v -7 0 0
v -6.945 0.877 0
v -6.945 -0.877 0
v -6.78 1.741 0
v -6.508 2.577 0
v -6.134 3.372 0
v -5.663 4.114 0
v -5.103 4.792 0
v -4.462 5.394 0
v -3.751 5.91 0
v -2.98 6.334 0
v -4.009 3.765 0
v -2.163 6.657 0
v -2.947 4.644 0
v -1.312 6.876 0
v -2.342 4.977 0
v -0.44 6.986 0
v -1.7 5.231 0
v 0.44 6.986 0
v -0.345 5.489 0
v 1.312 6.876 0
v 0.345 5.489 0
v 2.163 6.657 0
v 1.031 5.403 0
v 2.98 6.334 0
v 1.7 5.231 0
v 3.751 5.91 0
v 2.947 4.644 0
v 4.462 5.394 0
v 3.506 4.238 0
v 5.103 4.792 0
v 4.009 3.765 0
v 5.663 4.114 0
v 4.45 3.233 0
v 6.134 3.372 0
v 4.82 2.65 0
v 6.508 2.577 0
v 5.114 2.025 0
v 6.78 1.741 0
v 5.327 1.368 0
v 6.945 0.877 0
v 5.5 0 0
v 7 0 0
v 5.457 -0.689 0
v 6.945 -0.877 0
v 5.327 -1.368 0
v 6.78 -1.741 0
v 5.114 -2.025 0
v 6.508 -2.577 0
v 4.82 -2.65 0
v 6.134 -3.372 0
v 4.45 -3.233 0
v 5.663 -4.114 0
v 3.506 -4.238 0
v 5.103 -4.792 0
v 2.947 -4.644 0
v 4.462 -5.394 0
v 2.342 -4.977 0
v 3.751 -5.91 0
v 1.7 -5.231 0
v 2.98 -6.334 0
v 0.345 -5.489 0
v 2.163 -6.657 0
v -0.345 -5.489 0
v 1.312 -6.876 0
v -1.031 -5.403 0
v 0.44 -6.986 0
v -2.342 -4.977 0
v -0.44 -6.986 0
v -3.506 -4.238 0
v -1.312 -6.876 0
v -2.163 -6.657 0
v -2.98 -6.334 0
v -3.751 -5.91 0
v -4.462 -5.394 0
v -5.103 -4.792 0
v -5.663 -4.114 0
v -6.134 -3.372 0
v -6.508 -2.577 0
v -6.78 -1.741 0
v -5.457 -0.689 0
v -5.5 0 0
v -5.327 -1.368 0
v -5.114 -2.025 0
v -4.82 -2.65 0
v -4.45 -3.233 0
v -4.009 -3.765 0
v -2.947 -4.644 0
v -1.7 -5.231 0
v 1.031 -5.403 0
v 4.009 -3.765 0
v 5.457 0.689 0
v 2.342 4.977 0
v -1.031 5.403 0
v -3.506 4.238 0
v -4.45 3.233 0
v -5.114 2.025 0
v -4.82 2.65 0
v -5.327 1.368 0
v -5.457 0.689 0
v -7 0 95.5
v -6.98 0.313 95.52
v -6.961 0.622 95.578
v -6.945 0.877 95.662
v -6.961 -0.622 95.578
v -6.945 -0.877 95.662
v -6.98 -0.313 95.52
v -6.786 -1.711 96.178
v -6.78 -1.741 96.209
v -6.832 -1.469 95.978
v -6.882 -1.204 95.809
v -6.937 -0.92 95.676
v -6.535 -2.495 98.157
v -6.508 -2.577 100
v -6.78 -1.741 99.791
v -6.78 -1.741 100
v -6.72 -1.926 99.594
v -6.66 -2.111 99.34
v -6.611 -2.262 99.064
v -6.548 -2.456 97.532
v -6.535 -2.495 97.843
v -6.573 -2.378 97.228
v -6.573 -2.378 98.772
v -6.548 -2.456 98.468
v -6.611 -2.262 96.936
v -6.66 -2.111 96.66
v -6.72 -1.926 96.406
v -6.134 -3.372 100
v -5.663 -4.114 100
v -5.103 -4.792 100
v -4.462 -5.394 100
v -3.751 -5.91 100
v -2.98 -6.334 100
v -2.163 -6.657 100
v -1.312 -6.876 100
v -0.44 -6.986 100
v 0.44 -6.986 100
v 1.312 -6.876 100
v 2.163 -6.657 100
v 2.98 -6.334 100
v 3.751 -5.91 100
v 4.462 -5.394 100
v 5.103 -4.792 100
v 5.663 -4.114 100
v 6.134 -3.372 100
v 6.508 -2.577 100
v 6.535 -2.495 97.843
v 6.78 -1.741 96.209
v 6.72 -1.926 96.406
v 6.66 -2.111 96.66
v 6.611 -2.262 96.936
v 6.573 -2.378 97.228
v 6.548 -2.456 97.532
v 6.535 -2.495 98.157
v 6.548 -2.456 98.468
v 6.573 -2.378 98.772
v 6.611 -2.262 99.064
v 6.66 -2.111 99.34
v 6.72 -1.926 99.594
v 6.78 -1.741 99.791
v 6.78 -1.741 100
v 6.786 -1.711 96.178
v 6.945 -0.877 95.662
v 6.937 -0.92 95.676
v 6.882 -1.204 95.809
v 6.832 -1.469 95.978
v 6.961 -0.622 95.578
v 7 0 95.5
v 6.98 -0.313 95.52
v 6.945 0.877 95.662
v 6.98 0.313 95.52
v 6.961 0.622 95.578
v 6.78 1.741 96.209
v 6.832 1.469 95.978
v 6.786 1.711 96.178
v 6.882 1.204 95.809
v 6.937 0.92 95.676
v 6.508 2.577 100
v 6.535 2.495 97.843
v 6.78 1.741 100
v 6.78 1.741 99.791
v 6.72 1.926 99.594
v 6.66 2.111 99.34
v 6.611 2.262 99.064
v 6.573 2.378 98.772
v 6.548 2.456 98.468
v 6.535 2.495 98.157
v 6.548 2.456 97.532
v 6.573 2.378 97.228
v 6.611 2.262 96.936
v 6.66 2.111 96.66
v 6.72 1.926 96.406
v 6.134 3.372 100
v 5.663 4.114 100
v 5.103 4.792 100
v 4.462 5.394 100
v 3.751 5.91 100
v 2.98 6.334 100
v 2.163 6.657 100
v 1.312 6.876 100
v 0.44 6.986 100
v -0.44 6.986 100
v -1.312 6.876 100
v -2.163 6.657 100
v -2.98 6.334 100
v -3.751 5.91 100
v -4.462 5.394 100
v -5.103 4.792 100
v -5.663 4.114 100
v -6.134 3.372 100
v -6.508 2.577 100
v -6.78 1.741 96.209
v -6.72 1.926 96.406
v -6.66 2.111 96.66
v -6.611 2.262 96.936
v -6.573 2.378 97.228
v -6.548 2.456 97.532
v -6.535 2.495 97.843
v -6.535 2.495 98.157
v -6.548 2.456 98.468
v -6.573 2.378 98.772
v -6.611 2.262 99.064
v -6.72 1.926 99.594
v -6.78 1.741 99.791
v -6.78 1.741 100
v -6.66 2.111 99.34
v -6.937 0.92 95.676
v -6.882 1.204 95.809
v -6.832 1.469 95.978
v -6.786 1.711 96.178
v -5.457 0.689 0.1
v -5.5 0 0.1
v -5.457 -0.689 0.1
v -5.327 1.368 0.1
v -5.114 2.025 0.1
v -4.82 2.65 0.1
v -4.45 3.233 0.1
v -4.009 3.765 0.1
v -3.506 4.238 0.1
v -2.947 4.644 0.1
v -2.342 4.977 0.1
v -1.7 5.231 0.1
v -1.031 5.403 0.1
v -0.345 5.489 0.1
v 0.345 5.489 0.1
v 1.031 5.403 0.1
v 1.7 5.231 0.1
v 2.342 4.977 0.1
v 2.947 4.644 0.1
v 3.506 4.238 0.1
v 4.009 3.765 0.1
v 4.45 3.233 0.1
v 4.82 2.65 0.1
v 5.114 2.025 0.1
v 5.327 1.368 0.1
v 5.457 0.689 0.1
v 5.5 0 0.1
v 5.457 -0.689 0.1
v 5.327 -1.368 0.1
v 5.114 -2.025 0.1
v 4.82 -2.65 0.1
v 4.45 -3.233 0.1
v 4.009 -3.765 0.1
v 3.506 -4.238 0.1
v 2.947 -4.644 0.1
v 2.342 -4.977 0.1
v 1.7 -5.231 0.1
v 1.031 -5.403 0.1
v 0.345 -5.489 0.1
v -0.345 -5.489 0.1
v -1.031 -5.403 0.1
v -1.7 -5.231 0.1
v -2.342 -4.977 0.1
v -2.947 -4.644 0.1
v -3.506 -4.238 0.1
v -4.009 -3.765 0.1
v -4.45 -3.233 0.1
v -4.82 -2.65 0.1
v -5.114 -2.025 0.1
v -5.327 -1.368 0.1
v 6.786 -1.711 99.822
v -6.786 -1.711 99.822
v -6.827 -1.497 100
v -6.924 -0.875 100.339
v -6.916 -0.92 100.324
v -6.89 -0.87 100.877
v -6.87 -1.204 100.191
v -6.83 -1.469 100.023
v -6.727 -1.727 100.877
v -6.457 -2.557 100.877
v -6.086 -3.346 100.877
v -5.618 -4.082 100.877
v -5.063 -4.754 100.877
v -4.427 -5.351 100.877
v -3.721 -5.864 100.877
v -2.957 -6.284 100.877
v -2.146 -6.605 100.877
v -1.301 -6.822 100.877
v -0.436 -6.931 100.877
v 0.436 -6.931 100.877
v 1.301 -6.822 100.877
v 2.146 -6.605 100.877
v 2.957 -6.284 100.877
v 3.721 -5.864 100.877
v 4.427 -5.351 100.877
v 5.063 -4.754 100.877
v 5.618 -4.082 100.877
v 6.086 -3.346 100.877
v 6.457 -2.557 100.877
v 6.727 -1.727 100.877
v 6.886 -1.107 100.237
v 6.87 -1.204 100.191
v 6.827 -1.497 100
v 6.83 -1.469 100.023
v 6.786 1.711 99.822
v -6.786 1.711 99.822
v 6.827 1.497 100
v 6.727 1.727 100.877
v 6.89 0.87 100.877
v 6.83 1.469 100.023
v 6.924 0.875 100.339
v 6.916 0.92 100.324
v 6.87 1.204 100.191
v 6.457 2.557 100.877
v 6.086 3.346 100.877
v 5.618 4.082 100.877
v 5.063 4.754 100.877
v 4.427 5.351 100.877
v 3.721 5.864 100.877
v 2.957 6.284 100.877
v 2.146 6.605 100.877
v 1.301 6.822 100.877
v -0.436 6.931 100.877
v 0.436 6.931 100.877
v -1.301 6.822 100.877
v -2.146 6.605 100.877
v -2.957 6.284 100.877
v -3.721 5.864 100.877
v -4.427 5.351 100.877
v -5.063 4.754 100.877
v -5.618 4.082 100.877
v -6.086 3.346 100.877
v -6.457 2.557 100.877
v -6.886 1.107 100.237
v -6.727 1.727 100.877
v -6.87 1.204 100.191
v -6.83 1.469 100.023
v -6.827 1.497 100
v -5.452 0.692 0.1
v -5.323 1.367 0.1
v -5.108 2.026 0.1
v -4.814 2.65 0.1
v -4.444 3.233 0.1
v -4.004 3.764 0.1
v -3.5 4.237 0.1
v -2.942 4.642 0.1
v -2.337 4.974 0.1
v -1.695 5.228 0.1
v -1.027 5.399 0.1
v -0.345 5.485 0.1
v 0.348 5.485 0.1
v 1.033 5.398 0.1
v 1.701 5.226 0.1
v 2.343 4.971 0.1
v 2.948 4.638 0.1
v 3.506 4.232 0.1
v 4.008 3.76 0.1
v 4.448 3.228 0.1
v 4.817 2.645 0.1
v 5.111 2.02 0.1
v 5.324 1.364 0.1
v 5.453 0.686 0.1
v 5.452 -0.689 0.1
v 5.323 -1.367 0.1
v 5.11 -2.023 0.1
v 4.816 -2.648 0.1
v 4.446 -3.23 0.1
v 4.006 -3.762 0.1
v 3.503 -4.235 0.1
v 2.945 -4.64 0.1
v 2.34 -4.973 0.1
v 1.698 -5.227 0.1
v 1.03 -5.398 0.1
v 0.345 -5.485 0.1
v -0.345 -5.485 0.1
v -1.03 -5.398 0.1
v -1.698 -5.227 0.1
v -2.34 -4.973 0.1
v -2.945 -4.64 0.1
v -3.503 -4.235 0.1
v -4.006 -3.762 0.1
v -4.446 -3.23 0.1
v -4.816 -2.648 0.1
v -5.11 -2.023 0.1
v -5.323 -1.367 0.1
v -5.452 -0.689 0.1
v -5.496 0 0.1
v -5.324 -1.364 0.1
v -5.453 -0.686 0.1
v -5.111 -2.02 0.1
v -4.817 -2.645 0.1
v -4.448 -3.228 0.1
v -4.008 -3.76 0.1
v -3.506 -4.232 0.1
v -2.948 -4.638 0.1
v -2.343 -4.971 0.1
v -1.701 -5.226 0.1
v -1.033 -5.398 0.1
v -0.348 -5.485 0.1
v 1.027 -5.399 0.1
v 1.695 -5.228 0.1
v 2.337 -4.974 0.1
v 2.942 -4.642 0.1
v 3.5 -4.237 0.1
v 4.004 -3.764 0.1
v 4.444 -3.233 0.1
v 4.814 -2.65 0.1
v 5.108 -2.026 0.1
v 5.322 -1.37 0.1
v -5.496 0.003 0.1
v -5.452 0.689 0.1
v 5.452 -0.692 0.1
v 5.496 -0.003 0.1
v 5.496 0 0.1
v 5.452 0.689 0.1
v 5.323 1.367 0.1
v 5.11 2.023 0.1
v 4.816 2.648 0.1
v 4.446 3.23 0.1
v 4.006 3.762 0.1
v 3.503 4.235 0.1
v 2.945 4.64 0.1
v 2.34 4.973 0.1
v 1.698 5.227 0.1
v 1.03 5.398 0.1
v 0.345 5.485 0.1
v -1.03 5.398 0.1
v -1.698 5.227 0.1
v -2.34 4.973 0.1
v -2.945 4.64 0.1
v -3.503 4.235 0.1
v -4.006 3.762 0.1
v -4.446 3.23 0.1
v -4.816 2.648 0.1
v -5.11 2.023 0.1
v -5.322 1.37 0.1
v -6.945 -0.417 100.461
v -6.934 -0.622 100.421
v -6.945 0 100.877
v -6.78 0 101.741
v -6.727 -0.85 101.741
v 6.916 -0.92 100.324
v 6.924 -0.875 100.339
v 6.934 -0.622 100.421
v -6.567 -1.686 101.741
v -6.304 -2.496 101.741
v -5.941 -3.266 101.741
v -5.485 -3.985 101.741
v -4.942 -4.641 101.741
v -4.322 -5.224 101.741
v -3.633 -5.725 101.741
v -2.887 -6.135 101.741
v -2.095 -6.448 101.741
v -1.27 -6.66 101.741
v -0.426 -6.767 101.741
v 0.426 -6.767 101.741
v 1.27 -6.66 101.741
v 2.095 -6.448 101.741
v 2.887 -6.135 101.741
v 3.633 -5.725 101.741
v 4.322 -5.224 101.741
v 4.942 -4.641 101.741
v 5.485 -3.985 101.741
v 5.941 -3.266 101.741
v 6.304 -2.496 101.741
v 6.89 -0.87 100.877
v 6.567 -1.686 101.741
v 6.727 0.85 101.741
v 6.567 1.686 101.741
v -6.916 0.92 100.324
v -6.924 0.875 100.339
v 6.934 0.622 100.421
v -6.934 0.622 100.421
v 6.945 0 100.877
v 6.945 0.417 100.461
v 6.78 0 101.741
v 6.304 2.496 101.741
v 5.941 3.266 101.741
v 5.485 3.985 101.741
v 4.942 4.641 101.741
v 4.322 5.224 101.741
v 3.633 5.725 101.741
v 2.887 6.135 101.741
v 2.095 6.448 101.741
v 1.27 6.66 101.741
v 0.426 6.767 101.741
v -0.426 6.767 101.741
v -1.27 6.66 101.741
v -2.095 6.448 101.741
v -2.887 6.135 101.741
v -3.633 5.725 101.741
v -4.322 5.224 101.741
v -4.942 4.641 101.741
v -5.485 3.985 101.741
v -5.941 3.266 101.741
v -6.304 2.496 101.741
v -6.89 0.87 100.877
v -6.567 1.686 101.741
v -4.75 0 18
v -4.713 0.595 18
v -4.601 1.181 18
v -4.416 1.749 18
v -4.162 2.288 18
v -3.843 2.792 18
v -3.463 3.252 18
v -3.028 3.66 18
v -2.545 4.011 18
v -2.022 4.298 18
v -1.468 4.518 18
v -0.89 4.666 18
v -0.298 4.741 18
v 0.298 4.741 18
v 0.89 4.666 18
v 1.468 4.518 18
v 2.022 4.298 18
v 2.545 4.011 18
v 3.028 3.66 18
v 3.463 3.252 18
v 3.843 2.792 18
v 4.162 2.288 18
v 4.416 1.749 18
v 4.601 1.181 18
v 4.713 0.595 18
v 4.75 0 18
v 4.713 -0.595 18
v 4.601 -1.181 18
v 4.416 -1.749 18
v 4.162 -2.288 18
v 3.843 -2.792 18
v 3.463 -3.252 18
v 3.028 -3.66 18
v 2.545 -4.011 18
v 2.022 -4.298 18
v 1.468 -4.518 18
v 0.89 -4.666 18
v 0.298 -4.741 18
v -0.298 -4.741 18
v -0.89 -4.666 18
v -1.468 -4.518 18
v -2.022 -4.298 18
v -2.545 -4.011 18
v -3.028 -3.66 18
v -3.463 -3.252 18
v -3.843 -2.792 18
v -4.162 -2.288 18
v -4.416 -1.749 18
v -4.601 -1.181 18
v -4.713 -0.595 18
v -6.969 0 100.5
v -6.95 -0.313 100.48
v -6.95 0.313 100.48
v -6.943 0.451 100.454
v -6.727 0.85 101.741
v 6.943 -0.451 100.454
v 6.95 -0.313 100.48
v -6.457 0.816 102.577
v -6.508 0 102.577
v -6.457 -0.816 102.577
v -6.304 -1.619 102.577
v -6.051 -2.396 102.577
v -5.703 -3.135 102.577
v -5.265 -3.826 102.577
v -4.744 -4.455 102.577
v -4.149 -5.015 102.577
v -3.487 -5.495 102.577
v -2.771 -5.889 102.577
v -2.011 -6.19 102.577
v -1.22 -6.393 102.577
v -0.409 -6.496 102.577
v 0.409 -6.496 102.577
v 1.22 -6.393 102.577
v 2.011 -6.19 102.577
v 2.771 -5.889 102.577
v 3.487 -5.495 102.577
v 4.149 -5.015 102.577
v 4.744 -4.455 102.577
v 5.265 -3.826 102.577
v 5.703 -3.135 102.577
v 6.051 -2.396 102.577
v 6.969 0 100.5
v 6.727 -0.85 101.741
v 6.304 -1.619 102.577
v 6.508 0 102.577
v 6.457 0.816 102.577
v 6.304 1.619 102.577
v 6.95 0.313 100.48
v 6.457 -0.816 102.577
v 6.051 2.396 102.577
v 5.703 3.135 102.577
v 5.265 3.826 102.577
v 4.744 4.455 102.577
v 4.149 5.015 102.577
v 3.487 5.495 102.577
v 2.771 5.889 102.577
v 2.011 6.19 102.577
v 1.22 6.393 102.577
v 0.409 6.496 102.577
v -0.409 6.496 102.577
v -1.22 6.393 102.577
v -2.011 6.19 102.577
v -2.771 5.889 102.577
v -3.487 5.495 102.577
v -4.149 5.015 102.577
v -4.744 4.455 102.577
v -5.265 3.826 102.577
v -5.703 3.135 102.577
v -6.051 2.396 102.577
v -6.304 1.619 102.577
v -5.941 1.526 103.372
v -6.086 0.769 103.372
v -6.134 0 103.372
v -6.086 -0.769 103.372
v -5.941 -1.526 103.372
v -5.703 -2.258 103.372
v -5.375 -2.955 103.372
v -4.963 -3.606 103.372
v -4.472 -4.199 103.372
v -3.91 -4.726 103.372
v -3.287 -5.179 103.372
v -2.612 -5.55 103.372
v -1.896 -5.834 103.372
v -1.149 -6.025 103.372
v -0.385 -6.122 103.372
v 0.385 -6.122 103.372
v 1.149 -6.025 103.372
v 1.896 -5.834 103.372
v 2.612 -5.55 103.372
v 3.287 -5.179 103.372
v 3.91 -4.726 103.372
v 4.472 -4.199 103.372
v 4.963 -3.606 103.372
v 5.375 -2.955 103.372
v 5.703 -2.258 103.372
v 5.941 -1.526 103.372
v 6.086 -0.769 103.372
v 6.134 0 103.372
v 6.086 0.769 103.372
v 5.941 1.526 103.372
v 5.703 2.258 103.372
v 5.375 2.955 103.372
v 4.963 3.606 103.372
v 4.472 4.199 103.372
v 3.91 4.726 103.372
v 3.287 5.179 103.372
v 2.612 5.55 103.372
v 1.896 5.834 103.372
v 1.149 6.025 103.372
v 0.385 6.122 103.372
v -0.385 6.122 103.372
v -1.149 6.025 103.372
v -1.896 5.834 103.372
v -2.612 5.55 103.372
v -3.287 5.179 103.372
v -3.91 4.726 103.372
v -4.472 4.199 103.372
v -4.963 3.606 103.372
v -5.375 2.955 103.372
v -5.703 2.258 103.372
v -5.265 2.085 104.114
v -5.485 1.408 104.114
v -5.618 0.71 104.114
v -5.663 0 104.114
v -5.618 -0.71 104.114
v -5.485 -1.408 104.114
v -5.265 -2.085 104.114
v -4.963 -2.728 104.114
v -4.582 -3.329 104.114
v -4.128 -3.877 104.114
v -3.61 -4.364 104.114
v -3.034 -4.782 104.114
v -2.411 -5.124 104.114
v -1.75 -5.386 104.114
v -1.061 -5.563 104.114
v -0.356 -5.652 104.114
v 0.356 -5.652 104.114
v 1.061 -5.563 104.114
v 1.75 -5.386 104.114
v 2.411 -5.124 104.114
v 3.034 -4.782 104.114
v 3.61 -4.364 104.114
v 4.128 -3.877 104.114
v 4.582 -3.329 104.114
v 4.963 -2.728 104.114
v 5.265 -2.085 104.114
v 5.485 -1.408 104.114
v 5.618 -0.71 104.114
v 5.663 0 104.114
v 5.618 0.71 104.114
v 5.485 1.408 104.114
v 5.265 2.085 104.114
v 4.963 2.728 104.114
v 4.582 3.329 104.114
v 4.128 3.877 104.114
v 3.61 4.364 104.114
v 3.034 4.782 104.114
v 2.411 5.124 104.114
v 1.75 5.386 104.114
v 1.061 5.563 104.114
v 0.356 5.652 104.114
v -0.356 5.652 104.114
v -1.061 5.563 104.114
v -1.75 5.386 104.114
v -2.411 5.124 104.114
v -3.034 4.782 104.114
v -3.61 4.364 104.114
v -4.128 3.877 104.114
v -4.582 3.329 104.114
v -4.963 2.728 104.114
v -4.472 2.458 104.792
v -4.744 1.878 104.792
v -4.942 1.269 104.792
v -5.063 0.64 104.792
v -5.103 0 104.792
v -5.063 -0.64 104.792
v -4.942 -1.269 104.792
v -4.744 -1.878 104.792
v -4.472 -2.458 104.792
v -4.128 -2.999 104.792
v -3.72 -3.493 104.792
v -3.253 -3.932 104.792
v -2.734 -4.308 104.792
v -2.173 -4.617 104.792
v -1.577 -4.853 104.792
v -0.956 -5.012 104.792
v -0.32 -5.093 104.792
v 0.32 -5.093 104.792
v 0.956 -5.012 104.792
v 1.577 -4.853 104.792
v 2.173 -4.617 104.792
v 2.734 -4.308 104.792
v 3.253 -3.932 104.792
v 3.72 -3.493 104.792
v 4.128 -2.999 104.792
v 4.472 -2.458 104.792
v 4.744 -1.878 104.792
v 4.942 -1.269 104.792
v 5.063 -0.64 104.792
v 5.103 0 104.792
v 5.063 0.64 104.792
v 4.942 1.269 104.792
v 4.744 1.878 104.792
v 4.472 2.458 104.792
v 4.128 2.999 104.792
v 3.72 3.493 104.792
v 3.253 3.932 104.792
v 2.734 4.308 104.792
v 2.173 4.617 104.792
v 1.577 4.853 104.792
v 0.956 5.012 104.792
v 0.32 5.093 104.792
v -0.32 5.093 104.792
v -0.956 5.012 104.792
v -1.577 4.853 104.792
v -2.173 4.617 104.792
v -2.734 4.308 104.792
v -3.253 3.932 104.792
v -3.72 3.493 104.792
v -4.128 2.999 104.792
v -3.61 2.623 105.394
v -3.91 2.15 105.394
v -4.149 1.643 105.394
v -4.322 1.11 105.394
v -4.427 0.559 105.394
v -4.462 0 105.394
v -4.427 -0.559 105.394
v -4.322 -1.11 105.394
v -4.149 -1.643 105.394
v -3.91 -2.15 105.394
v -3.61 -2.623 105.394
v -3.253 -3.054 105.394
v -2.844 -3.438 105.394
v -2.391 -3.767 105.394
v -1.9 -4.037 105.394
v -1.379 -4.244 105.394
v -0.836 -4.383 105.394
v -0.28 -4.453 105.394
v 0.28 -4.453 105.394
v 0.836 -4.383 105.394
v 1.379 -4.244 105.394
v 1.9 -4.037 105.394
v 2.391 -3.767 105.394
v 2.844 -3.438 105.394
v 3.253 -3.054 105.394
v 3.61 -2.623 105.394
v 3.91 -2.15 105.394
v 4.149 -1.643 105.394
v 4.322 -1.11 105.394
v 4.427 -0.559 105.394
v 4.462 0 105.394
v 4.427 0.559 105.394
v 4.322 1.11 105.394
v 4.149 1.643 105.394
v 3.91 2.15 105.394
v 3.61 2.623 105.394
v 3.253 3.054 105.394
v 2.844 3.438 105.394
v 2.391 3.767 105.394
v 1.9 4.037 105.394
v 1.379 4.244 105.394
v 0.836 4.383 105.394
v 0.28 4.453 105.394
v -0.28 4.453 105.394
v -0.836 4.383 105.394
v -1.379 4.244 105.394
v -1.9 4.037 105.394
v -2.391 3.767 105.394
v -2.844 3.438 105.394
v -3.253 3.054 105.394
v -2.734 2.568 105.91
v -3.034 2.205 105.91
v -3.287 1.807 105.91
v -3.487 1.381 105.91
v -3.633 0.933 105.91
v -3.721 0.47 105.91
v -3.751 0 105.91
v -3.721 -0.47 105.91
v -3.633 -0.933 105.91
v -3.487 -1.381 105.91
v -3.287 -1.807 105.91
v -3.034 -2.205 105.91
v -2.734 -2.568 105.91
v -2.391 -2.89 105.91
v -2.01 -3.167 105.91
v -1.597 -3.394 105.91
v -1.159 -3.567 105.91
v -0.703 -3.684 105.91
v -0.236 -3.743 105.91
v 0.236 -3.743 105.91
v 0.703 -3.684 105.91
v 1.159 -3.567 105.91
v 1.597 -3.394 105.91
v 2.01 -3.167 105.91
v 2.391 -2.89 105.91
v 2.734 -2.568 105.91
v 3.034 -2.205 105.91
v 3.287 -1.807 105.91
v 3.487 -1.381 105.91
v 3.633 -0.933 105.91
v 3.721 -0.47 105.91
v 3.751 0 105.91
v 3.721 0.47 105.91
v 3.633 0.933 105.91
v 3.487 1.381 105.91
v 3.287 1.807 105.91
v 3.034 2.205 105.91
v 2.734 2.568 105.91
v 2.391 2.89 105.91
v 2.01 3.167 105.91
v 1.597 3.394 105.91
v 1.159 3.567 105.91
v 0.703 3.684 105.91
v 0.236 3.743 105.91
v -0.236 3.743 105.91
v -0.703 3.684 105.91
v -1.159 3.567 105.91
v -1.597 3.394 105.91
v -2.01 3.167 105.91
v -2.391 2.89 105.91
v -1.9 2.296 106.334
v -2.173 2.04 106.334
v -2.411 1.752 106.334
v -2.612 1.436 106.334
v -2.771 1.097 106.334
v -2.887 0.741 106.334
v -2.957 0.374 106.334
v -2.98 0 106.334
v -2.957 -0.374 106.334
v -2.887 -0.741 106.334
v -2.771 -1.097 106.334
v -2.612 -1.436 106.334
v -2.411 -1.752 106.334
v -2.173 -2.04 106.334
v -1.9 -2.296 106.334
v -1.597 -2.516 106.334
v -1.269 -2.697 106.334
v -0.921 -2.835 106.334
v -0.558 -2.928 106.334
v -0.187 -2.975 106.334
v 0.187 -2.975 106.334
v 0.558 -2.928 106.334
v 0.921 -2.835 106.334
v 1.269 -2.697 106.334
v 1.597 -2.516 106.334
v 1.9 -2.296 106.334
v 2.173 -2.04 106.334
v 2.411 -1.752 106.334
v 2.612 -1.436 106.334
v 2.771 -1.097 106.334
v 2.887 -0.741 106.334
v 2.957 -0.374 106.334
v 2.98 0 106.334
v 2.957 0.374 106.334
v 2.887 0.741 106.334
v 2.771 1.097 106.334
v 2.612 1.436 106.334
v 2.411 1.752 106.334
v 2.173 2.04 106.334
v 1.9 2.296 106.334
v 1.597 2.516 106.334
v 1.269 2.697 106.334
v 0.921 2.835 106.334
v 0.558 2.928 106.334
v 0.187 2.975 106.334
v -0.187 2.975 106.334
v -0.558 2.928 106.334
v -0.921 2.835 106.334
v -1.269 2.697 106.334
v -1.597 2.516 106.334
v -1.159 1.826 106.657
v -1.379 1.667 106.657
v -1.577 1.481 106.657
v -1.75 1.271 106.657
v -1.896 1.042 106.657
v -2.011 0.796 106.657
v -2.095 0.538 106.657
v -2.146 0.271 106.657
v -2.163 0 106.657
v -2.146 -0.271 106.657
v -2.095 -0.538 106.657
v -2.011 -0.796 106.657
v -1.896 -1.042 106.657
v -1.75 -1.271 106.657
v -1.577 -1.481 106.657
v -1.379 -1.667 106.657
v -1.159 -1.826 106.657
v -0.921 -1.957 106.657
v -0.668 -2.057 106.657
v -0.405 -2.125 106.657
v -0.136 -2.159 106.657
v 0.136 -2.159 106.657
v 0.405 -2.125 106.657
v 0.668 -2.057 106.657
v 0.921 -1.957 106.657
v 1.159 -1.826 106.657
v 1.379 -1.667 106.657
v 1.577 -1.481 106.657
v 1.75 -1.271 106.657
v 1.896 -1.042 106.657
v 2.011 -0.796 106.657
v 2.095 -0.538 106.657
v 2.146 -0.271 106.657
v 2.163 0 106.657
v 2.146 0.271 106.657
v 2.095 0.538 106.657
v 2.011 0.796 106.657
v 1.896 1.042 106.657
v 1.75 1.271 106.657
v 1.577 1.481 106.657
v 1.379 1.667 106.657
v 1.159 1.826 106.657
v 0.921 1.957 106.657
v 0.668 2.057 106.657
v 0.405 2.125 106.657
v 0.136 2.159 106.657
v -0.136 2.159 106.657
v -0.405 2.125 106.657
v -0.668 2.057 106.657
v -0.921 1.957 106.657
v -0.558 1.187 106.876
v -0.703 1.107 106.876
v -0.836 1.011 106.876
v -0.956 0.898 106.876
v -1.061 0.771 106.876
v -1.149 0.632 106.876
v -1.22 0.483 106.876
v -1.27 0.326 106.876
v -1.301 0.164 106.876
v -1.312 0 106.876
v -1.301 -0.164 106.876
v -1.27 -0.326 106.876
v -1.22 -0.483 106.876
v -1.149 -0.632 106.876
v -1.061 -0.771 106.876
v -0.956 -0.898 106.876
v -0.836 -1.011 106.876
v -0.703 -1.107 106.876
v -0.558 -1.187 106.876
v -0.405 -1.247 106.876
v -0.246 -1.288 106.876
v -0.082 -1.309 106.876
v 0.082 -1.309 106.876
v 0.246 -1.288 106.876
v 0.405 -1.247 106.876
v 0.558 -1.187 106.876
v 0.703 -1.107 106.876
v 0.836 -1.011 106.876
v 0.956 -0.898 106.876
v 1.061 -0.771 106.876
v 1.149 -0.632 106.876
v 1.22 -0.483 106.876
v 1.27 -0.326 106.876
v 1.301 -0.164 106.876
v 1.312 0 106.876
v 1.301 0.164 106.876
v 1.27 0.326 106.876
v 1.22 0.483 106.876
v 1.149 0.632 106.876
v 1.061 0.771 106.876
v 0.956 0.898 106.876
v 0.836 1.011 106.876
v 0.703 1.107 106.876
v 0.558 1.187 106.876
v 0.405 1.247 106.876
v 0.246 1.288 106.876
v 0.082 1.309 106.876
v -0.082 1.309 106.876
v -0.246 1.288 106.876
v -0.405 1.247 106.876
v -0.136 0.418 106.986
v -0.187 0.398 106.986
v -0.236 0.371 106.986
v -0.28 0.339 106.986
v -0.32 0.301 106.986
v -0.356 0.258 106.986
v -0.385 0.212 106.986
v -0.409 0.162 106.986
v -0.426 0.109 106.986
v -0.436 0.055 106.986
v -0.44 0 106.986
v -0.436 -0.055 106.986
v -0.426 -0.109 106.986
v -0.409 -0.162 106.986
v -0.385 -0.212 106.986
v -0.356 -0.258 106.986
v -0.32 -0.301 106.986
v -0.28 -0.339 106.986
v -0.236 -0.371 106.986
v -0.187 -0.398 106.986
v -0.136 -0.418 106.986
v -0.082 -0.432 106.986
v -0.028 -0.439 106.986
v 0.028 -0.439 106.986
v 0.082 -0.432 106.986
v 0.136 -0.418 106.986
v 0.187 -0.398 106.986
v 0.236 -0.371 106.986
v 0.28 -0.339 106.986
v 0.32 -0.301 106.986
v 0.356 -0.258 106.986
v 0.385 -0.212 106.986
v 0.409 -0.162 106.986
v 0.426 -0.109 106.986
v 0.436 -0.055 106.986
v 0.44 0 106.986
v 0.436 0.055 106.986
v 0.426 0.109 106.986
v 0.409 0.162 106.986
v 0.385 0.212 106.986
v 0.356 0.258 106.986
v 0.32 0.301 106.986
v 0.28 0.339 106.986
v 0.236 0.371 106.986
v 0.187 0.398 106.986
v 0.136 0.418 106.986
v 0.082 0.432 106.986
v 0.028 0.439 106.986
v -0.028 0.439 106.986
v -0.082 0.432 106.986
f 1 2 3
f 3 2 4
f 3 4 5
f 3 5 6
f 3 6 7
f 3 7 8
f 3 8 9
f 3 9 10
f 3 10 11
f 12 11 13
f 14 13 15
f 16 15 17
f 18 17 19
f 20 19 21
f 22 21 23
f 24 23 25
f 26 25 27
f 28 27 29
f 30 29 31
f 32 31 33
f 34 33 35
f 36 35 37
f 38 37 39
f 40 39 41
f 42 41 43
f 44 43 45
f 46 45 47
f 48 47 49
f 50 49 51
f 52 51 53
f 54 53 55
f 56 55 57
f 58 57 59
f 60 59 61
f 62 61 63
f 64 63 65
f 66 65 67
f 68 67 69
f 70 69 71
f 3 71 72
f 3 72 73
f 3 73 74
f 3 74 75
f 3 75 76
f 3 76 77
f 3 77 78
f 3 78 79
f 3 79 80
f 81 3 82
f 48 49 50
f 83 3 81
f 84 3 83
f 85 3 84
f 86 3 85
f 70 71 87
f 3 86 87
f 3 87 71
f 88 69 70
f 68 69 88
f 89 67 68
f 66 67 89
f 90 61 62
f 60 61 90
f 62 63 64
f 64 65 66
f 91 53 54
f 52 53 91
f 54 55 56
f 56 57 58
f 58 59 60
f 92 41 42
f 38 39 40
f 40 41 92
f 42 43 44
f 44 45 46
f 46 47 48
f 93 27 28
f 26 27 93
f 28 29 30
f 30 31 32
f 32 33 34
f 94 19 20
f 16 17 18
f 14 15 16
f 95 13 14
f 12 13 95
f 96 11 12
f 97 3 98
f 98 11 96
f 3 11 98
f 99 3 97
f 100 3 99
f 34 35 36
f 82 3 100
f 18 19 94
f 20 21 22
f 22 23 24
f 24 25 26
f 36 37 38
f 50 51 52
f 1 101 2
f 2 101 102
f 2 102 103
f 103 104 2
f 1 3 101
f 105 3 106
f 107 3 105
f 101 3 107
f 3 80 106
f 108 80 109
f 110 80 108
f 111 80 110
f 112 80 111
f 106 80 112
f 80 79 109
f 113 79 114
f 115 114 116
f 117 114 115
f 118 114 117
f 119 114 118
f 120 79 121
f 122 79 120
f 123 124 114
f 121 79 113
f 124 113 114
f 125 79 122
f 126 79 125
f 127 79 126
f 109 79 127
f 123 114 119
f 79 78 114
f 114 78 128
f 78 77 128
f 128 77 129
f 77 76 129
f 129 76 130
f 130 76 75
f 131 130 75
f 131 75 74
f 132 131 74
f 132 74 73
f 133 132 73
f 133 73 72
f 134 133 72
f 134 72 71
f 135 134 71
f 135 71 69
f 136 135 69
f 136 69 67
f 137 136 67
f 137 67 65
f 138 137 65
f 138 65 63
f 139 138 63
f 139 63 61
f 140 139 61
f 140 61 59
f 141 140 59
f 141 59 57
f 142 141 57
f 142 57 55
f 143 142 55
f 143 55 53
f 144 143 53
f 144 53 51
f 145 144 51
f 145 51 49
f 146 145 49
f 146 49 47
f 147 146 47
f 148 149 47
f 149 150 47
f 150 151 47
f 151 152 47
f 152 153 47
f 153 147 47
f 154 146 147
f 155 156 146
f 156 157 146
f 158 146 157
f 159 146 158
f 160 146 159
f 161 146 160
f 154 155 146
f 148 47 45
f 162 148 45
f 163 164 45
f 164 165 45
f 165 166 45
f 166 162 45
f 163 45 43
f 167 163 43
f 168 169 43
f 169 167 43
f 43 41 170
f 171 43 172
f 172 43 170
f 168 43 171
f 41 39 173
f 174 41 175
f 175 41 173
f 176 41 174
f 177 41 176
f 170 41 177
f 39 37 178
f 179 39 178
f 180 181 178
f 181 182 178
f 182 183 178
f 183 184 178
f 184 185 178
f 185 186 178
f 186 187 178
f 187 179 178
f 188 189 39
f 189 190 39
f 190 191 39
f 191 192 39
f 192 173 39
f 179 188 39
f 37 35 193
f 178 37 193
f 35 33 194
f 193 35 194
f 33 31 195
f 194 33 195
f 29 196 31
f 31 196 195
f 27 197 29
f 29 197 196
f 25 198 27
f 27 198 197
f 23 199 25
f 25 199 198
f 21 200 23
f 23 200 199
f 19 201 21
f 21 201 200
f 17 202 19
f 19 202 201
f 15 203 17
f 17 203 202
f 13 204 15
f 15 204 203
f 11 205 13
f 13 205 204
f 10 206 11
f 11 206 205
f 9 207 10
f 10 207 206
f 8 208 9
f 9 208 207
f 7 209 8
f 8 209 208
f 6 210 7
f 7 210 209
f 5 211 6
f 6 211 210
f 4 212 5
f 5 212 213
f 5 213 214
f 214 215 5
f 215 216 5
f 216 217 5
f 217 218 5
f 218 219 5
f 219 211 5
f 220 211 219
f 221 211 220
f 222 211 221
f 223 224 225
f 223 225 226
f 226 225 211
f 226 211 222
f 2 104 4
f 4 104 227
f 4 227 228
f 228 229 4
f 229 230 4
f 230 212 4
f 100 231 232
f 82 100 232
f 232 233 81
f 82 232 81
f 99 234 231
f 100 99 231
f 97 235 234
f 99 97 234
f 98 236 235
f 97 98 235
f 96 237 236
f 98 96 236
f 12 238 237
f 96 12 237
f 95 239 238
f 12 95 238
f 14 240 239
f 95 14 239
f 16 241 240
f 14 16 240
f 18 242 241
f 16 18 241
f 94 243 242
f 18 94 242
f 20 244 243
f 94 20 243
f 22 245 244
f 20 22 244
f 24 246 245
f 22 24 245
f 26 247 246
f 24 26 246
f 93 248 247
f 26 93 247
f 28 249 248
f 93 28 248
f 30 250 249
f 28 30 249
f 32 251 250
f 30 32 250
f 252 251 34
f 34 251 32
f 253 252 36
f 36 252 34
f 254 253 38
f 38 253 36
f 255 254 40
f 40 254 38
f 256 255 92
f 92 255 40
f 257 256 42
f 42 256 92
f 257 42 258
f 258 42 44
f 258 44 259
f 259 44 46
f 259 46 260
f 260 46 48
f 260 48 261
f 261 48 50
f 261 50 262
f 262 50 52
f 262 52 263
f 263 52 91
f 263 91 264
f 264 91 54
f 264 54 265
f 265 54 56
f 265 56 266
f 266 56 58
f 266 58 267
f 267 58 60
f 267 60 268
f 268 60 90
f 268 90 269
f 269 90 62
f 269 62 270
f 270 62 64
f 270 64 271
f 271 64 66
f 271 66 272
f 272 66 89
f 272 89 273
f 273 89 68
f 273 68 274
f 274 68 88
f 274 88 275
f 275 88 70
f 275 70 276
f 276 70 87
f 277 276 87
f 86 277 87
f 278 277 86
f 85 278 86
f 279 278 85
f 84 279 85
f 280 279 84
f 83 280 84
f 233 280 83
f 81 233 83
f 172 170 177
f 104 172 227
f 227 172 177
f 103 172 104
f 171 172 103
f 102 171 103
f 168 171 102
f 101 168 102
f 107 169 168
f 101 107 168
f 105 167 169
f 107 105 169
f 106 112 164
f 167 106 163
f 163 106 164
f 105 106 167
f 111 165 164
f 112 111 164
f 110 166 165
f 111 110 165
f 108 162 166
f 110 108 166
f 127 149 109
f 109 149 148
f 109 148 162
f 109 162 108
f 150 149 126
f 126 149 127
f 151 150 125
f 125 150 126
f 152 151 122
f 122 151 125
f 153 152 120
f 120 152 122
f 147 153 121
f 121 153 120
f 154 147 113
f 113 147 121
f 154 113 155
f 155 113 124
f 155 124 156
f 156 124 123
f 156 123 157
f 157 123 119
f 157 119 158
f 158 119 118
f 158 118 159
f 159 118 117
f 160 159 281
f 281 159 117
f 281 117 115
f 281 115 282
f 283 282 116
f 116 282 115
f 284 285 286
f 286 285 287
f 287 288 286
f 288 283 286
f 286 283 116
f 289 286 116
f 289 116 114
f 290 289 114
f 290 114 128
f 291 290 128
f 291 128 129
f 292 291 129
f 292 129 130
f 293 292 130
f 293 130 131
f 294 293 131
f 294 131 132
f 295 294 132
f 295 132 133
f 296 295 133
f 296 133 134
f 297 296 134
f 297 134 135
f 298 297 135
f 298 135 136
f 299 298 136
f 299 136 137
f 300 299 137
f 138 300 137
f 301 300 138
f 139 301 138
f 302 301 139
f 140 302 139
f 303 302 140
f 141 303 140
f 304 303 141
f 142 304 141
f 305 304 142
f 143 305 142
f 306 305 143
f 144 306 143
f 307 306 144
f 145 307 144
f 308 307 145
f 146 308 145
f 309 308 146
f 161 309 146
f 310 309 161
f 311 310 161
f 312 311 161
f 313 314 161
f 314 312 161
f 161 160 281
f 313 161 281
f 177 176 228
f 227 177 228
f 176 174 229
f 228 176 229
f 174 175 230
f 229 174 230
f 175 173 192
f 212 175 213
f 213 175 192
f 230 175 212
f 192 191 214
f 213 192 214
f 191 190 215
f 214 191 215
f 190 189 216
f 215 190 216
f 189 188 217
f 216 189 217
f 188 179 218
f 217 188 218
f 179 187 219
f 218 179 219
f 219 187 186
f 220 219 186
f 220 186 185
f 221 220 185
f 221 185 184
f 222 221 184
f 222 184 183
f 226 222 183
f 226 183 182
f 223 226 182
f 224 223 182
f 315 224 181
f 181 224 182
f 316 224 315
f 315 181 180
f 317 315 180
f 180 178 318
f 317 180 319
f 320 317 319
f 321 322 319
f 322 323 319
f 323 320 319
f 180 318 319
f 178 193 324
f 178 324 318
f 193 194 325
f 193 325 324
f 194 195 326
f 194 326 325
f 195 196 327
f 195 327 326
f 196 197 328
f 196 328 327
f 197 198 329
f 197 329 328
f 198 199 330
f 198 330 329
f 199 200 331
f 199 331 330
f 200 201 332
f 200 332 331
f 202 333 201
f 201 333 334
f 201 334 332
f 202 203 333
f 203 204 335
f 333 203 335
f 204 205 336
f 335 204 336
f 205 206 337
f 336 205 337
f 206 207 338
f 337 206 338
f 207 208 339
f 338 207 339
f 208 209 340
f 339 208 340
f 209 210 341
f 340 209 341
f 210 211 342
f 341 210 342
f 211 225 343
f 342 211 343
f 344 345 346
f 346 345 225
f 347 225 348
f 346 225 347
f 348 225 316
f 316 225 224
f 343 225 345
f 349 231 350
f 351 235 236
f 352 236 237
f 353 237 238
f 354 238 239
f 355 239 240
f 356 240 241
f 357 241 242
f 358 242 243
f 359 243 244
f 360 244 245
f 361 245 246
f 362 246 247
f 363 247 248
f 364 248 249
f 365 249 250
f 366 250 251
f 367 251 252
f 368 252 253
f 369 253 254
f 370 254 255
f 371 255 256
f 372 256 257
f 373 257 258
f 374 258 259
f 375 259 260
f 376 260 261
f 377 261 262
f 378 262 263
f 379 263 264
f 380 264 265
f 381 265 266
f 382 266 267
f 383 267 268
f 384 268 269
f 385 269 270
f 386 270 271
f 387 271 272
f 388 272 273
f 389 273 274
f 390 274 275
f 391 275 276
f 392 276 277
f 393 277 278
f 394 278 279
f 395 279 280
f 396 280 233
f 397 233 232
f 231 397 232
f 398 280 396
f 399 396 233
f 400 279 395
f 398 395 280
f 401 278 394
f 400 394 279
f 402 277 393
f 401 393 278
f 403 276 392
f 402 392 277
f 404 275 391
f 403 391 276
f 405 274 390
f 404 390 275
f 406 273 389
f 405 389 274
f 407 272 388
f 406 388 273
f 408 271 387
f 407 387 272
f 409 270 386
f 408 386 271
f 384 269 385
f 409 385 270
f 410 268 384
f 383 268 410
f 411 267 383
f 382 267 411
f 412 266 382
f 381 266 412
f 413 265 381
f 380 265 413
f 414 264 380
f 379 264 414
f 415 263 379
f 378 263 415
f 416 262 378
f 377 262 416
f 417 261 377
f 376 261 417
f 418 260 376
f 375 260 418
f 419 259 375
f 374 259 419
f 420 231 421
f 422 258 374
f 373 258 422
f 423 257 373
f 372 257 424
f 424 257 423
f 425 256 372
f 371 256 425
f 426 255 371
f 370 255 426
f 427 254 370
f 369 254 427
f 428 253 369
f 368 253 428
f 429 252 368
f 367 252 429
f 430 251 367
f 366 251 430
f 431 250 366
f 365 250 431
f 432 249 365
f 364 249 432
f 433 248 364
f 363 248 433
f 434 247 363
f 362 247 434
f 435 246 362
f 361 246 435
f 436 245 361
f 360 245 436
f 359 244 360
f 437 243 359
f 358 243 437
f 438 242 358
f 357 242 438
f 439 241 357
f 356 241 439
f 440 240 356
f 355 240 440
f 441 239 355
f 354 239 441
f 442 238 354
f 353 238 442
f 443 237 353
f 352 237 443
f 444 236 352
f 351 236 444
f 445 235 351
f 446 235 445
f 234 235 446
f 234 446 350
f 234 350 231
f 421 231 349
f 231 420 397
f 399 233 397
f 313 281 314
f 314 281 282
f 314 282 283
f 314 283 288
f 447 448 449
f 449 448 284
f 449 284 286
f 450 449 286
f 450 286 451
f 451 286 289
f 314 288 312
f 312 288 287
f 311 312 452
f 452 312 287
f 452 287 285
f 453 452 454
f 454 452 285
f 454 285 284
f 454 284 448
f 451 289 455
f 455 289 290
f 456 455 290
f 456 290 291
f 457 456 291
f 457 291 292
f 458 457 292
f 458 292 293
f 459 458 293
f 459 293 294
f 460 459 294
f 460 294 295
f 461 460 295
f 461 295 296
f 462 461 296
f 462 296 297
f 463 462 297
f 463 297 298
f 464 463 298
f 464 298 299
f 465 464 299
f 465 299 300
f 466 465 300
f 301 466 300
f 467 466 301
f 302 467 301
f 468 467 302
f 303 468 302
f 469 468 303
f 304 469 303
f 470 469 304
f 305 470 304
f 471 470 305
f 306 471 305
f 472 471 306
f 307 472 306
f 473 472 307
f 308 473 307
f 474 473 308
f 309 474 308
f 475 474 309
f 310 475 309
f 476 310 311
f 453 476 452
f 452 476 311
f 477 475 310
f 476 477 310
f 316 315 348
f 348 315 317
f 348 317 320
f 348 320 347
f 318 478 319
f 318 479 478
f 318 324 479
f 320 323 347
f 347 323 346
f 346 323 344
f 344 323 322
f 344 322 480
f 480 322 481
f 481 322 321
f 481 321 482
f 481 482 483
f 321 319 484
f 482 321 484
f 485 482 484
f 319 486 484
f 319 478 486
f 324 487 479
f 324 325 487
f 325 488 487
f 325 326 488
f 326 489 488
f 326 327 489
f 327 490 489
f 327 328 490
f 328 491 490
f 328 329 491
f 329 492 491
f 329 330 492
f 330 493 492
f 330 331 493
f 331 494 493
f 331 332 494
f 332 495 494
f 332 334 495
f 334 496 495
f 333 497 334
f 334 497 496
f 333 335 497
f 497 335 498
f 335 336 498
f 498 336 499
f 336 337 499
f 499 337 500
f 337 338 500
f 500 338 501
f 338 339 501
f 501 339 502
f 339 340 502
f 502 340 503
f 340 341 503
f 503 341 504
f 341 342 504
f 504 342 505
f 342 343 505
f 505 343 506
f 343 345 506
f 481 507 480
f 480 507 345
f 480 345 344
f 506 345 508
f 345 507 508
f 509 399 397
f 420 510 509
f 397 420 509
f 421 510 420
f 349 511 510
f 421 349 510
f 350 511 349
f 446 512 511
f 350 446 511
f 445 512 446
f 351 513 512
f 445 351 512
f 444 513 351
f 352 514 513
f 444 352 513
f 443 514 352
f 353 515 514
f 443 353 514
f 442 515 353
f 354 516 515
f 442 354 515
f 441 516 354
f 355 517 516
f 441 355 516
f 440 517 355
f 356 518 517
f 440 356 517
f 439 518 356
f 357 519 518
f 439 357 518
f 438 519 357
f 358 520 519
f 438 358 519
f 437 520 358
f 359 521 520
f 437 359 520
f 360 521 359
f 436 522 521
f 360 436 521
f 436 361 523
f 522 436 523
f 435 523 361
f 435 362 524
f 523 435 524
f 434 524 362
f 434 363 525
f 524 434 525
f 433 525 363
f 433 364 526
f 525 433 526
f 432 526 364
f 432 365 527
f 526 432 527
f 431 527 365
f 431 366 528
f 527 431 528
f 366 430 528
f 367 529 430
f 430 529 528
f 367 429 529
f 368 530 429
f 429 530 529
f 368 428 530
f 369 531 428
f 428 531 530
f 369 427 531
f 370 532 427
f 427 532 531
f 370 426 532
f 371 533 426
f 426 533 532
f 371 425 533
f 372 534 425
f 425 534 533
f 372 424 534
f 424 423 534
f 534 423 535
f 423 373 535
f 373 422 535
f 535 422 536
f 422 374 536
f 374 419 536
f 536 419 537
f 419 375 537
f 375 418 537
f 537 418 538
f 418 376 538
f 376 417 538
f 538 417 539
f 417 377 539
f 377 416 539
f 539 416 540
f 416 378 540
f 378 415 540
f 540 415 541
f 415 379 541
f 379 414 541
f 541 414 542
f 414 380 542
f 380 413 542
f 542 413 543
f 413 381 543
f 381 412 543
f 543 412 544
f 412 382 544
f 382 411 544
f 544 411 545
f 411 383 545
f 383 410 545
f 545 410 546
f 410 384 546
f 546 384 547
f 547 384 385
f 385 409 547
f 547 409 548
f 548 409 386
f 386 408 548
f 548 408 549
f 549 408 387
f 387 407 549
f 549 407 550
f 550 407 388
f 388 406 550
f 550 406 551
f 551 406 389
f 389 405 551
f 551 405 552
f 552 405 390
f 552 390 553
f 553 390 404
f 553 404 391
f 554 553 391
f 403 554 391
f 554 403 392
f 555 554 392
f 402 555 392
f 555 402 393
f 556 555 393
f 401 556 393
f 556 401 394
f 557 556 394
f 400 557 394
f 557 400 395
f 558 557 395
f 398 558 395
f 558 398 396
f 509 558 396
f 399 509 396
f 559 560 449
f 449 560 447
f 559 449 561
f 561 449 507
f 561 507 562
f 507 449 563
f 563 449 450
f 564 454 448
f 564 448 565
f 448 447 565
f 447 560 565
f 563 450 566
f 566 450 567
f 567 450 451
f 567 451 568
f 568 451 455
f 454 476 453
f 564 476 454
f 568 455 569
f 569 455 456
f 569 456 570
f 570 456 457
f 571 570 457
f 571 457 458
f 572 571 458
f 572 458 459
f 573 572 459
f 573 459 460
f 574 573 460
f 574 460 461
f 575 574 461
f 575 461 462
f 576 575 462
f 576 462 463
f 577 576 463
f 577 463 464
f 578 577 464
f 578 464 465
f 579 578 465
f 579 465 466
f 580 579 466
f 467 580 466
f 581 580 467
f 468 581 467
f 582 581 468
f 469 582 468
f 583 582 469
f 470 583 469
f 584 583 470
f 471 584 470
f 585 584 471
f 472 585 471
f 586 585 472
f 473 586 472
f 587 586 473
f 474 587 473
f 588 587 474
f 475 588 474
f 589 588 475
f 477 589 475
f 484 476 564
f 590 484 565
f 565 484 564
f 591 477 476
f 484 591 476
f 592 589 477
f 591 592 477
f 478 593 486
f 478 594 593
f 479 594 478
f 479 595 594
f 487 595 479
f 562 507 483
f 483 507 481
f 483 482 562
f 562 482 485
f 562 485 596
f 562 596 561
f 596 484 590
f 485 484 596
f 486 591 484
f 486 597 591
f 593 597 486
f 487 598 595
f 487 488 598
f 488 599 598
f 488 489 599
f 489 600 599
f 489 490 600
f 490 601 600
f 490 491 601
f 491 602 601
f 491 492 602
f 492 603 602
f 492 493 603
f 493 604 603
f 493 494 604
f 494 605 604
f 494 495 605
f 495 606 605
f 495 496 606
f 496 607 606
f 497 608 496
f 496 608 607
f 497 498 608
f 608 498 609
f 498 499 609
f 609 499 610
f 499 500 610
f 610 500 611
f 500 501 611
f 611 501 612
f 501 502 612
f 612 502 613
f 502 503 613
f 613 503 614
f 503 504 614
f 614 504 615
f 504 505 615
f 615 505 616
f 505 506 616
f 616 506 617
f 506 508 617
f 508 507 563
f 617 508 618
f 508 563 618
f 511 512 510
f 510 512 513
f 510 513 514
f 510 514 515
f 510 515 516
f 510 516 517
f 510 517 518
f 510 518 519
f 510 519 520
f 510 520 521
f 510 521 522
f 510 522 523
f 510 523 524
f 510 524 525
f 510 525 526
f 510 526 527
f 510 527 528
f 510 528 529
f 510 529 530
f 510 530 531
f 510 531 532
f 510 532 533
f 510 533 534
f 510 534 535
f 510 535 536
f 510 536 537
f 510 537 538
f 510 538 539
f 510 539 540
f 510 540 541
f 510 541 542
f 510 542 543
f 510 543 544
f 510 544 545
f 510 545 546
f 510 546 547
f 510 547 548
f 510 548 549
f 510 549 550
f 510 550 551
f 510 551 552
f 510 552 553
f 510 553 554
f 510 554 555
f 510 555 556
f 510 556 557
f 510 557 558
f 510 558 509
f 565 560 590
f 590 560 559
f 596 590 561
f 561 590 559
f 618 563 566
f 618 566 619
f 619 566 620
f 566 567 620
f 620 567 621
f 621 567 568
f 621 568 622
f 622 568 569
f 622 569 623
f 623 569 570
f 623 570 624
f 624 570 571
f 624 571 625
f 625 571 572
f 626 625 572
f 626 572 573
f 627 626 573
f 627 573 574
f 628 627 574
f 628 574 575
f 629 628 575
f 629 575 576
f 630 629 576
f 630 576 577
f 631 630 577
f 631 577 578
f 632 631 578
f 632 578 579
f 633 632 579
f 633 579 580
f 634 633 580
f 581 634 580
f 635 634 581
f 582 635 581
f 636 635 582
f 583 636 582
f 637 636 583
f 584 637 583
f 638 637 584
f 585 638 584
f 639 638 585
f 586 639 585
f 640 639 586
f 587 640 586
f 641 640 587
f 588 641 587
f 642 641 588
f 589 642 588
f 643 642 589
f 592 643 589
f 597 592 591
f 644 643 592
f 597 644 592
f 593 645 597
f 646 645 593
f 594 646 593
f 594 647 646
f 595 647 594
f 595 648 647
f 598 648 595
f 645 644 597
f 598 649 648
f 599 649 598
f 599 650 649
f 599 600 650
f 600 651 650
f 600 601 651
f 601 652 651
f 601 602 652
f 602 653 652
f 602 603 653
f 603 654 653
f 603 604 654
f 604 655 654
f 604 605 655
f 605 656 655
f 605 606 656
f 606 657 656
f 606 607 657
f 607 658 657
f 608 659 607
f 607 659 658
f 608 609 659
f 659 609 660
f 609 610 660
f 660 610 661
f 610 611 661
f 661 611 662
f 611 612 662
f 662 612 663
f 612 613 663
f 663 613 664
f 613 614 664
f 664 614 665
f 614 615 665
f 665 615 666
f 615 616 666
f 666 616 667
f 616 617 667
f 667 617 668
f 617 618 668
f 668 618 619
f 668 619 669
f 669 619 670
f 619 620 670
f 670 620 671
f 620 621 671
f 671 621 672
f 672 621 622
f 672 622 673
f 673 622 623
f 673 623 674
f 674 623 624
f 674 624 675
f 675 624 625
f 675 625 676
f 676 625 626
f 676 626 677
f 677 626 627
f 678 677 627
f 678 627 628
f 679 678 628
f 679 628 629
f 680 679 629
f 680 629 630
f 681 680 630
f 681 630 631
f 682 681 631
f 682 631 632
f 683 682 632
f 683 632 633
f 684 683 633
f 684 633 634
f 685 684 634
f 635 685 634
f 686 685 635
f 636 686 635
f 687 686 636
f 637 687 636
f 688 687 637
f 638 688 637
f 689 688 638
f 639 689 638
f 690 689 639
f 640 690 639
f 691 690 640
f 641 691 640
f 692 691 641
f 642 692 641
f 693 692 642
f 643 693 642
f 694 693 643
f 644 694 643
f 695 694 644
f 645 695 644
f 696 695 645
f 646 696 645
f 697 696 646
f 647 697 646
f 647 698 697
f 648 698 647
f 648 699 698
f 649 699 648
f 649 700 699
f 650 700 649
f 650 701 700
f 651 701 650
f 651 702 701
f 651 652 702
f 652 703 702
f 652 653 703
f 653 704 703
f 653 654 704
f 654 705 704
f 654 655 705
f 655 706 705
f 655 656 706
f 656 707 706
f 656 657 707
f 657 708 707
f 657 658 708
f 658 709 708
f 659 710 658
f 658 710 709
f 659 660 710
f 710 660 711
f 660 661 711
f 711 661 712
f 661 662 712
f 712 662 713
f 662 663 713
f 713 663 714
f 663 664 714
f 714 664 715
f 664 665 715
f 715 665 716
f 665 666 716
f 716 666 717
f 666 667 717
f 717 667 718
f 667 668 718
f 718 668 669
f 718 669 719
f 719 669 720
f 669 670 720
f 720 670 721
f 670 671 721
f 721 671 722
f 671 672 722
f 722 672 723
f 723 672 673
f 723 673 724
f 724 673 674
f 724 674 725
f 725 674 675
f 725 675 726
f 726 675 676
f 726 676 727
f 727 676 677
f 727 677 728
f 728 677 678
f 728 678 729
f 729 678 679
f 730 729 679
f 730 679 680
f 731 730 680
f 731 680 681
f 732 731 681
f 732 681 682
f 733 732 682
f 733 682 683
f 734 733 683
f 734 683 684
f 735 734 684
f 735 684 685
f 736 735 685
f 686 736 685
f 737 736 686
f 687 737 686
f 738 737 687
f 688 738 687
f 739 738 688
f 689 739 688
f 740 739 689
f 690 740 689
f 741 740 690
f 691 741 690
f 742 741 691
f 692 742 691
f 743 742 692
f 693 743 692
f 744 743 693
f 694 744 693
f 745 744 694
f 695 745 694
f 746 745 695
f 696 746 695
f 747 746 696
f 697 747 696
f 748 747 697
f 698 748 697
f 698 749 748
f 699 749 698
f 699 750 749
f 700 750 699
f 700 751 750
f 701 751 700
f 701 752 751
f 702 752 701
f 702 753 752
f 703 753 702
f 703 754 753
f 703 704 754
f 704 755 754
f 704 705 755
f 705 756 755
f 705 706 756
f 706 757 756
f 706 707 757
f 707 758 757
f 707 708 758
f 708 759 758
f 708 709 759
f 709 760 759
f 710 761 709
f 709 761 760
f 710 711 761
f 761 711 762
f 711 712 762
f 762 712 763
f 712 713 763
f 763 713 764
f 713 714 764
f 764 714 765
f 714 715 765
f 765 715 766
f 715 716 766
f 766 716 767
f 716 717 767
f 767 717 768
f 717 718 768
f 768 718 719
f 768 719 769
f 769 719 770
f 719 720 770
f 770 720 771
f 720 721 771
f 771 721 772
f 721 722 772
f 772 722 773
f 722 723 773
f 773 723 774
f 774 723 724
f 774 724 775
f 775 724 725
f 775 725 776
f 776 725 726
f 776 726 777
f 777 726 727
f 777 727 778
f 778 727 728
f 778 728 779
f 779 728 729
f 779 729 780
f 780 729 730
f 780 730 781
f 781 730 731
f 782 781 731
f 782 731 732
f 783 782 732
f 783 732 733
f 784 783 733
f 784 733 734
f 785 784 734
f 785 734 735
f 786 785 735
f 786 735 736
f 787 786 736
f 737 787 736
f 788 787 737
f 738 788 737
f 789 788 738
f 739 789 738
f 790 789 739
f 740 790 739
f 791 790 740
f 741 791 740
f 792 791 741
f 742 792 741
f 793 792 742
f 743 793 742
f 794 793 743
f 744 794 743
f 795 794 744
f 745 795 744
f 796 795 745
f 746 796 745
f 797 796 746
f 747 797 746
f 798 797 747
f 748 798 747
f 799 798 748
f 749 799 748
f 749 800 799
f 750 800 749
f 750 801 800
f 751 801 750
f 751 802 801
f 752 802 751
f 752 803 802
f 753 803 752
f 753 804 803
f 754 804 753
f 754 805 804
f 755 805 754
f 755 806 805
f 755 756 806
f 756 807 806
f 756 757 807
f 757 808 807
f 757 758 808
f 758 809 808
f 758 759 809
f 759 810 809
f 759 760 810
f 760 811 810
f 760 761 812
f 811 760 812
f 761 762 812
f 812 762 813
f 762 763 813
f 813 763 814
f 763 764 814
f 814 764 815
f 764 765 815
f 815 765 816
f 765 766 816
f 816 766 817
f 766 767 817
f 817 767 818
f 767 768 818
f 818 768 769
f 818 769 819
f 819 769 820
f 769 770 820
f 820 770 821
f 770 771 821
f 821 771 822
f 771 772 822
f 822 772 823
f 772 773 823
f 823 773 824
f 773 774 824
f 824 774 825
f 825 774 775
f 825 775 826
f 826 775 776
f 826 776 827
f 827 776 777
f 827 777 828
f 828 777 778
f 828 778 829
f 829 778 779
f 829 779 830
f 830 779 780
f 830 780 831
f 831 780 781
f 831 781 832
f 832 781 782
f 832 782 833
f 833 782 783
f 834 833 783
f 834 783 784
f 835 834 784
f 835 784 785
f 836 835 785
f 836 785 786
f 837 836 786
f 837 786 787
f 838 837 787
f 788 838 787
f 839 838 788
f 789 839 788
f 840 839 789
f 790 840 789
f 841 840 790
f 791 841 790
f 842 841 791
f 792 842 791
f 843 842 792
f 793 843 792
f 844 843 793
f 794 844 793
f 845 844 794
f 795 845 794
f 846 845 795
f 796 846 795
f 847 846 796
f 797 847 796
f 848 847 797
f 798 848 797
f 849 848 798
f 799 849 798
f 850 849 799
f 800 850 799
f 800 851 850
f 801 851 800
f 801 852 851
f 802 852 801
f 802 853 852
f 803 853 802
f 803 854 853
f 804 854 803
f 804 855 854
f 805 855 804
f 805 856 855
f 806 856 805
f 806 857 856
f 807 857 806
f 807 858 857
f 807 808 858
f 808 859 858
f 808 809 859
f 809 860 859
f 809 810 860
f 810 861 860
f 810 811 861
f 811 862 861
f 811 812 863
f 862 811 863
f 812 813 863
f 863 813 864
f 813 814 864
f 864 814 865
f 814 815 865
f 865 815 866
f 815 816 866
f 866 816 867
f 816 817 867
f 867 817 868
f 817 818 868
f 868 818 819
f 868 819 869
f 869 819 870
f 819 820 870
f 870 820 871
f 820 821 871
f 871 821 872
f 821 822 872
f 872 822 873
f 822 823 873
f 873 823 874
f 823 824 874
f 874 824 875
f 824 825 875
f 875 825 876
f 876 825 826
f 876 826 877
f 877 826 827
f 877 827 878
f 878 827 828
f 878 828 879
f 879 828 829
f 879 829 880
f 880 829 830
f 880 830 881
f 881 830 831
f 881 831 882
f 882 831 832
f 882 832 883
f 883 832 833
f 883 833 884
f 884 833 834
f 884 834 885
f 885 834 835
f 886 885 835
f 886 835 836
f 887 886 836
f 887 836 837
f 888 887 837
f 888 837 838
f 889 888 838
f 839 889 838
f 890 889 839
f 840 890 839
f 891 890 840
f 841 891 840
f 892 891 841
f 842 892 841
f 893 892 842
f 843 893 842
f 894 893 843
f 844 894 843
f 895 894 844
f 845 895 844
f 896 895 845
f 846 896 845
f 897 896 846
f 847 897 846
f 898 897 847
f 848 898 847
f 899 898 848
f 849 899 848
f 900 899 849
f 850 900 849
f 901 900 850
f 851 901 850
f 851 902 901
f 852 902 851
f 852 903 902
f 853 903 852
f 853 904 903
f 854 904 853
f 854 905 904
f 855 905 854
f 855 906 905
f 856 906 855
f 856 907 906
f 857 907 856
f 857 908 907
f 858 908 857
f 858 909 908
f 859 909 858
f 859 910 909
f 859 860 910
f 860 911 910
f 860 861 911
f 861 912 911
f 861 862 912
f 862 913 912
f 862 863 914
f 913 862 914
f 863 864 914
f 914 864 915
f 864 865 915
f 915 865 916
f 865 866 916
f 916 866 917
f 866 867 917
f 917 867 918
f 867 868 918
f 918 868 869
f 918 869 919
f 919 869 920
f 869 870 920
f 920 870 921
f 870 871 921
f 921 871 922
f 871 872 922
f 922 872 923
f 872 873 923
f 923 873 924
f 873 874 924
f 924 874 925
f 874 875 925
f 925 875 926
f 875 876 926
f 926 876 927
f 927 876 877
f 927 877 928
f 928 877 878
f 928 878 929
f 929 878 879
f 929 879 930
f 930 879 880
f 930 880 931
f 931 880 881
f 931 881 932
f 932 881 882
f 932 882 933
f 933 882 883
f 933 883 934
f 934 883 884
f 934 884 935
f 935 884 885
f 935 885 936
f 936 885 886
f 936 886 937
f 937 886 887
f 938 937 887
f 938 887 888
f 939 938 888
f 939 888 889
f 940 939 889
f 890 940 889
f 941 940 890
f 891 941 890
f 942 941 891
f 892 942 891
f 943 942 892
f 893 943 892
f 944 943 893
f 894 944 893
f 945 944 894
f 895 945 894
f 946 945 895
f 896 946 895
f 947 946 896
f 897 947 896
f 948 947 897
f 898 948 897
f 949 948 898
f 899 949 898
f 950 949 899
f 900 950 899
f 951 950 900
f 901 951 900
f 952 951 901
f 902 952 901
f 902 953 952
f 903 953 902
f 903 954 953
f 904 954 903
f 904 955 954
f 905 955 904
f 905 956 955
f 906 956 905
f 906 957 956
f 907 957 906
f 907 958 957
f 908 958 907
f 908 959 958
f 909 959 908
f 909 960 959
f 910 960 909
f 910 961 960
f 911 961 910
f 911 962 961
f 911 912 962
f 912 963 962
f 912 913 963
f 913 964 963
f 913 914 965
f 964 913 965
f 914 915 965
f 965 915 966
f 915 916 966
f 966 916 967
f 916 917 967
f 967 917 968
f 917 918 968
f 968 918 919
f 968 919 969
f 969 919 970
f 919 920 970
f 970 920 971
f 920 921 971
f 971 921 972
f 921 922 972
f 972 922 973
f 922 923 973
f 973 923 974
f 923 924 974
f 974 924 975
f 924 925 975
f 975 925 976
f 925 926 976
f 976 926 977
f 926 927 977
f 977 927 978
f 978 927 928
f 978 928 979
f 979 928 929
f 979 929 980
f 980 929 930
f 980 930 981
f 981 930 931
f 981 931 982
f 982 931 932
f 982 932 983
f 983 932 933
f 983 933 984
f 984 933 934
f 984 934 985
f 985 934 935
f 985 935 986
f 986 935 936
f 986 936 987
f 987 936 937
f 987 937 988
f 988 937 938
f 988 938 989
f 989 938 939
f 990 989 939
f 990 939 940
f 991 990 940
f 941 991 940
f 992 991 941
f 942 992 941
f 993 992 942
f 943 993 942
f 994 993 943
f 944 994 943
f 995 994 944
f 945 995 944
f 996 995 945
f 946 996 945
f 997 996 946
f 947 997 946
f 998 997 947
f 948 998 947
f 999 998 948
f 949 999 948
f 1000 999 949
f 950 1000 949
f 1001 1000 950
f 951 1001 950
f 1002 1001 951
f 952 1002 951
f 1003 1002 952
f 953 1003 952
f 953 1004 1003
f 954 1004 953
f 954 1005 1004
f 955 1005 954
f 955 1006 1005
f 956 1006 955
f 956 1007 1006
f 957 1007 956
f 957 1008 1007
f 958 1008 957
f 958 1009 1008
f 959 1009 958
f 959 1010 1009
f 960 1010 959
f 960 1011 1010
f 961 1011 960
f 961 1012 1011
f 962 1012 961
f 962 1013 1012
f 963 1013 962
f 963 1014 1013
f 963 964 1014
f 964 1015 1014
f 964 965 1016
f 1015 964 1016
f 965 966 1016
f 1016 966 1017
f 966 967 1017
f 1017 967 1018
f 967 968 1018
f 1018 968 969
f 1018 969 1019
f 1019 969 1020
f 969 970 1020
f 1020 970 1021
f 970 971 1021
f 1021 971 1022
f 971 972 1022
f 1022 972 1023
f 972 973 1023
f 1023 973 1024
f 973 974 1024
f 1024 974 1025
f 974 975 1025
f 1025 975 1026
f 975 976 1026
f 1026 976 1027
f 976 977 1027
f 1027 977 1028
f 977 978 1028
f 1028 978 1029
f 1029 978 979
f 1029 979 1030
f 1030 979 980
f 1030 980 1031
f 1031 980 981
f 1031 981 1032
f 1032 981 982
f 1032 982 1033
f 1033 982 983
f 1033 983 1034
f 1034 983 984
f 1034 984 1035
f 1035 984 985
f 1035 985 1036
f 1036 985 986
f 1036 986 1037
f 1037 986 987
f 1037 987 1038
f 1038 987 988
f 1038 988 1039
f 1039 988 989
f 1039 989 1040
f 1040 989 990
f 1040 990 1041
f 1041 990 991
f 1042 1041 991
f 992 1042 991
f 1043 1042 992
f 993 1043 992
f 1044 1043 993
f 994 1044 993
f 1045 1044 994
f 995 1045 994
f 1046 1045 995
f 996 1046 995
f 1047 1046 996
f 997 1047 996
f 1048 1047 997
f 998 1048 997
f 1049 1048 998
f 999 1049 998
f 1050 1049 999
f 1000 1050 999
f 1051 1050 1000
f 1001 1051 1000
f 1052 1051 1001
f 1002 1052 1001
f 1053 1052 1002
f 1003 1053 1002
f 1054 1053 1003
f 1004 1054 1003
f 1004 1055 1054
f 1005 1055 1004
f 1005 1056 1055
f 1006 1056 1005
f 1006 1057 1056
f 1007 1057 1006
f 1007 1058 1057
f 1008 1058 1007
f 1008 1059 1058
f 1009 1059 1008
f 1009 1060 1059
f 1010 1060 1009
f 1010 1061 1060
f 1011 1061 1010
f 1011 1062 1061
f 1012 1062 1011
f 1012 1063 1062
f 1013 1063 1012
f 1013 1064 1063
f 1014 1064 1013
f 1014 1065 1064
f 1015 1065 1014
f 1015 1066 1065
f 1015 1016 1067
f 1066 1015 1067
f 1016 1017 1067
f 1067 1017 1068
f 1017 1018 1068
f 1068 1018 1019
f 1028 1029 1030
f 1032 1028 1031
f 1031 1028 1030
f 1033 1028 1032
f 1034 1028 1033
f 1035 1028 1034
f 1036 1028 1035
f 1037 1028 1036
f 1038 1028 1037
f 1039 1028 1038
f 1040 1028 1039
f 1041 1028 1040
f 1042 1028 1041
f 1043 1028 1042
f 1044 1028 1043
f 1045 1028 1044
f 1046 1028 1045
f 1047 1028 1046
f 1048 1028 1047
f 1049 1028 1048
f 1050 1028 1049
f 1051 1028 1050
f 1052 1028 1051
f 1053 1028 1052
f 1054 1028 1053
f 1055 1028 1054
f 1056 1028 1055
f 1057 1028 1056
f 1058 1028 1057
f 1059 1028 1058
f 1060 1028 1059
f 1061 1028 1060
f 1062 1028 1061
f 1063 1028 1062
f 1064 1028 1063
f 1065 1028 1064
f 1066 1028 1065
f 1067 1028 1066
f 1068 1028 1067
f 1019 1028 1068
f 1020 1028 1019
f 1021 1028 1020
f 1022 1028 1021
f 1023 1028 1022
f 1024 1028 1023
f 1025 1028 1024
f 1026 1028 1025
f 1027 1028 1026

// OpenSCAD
// replacement handle for the one I broke on the Cricuit spatula
difference(){
	union(){
	
		// handle body
		cylinder(r=7,h=100,$fn=50);

		// rounded end
		translate([0,0,100]){
			sphere(r=7,$fn=50);
		}
	}

	// handle cavity
	cylinder(r1=5.5,r2=4.75,h=18,$fn=50);
	translate([0,0,-1]){
		cylinder(r=5.5,h=1.1,$fn=50);
	}	

	// hanging hole
	translate([-8,0,98]){
		rotate([0,90,0]){
			cylinder(r=2.5,h=16,$fn=50);
		}
	}
}
